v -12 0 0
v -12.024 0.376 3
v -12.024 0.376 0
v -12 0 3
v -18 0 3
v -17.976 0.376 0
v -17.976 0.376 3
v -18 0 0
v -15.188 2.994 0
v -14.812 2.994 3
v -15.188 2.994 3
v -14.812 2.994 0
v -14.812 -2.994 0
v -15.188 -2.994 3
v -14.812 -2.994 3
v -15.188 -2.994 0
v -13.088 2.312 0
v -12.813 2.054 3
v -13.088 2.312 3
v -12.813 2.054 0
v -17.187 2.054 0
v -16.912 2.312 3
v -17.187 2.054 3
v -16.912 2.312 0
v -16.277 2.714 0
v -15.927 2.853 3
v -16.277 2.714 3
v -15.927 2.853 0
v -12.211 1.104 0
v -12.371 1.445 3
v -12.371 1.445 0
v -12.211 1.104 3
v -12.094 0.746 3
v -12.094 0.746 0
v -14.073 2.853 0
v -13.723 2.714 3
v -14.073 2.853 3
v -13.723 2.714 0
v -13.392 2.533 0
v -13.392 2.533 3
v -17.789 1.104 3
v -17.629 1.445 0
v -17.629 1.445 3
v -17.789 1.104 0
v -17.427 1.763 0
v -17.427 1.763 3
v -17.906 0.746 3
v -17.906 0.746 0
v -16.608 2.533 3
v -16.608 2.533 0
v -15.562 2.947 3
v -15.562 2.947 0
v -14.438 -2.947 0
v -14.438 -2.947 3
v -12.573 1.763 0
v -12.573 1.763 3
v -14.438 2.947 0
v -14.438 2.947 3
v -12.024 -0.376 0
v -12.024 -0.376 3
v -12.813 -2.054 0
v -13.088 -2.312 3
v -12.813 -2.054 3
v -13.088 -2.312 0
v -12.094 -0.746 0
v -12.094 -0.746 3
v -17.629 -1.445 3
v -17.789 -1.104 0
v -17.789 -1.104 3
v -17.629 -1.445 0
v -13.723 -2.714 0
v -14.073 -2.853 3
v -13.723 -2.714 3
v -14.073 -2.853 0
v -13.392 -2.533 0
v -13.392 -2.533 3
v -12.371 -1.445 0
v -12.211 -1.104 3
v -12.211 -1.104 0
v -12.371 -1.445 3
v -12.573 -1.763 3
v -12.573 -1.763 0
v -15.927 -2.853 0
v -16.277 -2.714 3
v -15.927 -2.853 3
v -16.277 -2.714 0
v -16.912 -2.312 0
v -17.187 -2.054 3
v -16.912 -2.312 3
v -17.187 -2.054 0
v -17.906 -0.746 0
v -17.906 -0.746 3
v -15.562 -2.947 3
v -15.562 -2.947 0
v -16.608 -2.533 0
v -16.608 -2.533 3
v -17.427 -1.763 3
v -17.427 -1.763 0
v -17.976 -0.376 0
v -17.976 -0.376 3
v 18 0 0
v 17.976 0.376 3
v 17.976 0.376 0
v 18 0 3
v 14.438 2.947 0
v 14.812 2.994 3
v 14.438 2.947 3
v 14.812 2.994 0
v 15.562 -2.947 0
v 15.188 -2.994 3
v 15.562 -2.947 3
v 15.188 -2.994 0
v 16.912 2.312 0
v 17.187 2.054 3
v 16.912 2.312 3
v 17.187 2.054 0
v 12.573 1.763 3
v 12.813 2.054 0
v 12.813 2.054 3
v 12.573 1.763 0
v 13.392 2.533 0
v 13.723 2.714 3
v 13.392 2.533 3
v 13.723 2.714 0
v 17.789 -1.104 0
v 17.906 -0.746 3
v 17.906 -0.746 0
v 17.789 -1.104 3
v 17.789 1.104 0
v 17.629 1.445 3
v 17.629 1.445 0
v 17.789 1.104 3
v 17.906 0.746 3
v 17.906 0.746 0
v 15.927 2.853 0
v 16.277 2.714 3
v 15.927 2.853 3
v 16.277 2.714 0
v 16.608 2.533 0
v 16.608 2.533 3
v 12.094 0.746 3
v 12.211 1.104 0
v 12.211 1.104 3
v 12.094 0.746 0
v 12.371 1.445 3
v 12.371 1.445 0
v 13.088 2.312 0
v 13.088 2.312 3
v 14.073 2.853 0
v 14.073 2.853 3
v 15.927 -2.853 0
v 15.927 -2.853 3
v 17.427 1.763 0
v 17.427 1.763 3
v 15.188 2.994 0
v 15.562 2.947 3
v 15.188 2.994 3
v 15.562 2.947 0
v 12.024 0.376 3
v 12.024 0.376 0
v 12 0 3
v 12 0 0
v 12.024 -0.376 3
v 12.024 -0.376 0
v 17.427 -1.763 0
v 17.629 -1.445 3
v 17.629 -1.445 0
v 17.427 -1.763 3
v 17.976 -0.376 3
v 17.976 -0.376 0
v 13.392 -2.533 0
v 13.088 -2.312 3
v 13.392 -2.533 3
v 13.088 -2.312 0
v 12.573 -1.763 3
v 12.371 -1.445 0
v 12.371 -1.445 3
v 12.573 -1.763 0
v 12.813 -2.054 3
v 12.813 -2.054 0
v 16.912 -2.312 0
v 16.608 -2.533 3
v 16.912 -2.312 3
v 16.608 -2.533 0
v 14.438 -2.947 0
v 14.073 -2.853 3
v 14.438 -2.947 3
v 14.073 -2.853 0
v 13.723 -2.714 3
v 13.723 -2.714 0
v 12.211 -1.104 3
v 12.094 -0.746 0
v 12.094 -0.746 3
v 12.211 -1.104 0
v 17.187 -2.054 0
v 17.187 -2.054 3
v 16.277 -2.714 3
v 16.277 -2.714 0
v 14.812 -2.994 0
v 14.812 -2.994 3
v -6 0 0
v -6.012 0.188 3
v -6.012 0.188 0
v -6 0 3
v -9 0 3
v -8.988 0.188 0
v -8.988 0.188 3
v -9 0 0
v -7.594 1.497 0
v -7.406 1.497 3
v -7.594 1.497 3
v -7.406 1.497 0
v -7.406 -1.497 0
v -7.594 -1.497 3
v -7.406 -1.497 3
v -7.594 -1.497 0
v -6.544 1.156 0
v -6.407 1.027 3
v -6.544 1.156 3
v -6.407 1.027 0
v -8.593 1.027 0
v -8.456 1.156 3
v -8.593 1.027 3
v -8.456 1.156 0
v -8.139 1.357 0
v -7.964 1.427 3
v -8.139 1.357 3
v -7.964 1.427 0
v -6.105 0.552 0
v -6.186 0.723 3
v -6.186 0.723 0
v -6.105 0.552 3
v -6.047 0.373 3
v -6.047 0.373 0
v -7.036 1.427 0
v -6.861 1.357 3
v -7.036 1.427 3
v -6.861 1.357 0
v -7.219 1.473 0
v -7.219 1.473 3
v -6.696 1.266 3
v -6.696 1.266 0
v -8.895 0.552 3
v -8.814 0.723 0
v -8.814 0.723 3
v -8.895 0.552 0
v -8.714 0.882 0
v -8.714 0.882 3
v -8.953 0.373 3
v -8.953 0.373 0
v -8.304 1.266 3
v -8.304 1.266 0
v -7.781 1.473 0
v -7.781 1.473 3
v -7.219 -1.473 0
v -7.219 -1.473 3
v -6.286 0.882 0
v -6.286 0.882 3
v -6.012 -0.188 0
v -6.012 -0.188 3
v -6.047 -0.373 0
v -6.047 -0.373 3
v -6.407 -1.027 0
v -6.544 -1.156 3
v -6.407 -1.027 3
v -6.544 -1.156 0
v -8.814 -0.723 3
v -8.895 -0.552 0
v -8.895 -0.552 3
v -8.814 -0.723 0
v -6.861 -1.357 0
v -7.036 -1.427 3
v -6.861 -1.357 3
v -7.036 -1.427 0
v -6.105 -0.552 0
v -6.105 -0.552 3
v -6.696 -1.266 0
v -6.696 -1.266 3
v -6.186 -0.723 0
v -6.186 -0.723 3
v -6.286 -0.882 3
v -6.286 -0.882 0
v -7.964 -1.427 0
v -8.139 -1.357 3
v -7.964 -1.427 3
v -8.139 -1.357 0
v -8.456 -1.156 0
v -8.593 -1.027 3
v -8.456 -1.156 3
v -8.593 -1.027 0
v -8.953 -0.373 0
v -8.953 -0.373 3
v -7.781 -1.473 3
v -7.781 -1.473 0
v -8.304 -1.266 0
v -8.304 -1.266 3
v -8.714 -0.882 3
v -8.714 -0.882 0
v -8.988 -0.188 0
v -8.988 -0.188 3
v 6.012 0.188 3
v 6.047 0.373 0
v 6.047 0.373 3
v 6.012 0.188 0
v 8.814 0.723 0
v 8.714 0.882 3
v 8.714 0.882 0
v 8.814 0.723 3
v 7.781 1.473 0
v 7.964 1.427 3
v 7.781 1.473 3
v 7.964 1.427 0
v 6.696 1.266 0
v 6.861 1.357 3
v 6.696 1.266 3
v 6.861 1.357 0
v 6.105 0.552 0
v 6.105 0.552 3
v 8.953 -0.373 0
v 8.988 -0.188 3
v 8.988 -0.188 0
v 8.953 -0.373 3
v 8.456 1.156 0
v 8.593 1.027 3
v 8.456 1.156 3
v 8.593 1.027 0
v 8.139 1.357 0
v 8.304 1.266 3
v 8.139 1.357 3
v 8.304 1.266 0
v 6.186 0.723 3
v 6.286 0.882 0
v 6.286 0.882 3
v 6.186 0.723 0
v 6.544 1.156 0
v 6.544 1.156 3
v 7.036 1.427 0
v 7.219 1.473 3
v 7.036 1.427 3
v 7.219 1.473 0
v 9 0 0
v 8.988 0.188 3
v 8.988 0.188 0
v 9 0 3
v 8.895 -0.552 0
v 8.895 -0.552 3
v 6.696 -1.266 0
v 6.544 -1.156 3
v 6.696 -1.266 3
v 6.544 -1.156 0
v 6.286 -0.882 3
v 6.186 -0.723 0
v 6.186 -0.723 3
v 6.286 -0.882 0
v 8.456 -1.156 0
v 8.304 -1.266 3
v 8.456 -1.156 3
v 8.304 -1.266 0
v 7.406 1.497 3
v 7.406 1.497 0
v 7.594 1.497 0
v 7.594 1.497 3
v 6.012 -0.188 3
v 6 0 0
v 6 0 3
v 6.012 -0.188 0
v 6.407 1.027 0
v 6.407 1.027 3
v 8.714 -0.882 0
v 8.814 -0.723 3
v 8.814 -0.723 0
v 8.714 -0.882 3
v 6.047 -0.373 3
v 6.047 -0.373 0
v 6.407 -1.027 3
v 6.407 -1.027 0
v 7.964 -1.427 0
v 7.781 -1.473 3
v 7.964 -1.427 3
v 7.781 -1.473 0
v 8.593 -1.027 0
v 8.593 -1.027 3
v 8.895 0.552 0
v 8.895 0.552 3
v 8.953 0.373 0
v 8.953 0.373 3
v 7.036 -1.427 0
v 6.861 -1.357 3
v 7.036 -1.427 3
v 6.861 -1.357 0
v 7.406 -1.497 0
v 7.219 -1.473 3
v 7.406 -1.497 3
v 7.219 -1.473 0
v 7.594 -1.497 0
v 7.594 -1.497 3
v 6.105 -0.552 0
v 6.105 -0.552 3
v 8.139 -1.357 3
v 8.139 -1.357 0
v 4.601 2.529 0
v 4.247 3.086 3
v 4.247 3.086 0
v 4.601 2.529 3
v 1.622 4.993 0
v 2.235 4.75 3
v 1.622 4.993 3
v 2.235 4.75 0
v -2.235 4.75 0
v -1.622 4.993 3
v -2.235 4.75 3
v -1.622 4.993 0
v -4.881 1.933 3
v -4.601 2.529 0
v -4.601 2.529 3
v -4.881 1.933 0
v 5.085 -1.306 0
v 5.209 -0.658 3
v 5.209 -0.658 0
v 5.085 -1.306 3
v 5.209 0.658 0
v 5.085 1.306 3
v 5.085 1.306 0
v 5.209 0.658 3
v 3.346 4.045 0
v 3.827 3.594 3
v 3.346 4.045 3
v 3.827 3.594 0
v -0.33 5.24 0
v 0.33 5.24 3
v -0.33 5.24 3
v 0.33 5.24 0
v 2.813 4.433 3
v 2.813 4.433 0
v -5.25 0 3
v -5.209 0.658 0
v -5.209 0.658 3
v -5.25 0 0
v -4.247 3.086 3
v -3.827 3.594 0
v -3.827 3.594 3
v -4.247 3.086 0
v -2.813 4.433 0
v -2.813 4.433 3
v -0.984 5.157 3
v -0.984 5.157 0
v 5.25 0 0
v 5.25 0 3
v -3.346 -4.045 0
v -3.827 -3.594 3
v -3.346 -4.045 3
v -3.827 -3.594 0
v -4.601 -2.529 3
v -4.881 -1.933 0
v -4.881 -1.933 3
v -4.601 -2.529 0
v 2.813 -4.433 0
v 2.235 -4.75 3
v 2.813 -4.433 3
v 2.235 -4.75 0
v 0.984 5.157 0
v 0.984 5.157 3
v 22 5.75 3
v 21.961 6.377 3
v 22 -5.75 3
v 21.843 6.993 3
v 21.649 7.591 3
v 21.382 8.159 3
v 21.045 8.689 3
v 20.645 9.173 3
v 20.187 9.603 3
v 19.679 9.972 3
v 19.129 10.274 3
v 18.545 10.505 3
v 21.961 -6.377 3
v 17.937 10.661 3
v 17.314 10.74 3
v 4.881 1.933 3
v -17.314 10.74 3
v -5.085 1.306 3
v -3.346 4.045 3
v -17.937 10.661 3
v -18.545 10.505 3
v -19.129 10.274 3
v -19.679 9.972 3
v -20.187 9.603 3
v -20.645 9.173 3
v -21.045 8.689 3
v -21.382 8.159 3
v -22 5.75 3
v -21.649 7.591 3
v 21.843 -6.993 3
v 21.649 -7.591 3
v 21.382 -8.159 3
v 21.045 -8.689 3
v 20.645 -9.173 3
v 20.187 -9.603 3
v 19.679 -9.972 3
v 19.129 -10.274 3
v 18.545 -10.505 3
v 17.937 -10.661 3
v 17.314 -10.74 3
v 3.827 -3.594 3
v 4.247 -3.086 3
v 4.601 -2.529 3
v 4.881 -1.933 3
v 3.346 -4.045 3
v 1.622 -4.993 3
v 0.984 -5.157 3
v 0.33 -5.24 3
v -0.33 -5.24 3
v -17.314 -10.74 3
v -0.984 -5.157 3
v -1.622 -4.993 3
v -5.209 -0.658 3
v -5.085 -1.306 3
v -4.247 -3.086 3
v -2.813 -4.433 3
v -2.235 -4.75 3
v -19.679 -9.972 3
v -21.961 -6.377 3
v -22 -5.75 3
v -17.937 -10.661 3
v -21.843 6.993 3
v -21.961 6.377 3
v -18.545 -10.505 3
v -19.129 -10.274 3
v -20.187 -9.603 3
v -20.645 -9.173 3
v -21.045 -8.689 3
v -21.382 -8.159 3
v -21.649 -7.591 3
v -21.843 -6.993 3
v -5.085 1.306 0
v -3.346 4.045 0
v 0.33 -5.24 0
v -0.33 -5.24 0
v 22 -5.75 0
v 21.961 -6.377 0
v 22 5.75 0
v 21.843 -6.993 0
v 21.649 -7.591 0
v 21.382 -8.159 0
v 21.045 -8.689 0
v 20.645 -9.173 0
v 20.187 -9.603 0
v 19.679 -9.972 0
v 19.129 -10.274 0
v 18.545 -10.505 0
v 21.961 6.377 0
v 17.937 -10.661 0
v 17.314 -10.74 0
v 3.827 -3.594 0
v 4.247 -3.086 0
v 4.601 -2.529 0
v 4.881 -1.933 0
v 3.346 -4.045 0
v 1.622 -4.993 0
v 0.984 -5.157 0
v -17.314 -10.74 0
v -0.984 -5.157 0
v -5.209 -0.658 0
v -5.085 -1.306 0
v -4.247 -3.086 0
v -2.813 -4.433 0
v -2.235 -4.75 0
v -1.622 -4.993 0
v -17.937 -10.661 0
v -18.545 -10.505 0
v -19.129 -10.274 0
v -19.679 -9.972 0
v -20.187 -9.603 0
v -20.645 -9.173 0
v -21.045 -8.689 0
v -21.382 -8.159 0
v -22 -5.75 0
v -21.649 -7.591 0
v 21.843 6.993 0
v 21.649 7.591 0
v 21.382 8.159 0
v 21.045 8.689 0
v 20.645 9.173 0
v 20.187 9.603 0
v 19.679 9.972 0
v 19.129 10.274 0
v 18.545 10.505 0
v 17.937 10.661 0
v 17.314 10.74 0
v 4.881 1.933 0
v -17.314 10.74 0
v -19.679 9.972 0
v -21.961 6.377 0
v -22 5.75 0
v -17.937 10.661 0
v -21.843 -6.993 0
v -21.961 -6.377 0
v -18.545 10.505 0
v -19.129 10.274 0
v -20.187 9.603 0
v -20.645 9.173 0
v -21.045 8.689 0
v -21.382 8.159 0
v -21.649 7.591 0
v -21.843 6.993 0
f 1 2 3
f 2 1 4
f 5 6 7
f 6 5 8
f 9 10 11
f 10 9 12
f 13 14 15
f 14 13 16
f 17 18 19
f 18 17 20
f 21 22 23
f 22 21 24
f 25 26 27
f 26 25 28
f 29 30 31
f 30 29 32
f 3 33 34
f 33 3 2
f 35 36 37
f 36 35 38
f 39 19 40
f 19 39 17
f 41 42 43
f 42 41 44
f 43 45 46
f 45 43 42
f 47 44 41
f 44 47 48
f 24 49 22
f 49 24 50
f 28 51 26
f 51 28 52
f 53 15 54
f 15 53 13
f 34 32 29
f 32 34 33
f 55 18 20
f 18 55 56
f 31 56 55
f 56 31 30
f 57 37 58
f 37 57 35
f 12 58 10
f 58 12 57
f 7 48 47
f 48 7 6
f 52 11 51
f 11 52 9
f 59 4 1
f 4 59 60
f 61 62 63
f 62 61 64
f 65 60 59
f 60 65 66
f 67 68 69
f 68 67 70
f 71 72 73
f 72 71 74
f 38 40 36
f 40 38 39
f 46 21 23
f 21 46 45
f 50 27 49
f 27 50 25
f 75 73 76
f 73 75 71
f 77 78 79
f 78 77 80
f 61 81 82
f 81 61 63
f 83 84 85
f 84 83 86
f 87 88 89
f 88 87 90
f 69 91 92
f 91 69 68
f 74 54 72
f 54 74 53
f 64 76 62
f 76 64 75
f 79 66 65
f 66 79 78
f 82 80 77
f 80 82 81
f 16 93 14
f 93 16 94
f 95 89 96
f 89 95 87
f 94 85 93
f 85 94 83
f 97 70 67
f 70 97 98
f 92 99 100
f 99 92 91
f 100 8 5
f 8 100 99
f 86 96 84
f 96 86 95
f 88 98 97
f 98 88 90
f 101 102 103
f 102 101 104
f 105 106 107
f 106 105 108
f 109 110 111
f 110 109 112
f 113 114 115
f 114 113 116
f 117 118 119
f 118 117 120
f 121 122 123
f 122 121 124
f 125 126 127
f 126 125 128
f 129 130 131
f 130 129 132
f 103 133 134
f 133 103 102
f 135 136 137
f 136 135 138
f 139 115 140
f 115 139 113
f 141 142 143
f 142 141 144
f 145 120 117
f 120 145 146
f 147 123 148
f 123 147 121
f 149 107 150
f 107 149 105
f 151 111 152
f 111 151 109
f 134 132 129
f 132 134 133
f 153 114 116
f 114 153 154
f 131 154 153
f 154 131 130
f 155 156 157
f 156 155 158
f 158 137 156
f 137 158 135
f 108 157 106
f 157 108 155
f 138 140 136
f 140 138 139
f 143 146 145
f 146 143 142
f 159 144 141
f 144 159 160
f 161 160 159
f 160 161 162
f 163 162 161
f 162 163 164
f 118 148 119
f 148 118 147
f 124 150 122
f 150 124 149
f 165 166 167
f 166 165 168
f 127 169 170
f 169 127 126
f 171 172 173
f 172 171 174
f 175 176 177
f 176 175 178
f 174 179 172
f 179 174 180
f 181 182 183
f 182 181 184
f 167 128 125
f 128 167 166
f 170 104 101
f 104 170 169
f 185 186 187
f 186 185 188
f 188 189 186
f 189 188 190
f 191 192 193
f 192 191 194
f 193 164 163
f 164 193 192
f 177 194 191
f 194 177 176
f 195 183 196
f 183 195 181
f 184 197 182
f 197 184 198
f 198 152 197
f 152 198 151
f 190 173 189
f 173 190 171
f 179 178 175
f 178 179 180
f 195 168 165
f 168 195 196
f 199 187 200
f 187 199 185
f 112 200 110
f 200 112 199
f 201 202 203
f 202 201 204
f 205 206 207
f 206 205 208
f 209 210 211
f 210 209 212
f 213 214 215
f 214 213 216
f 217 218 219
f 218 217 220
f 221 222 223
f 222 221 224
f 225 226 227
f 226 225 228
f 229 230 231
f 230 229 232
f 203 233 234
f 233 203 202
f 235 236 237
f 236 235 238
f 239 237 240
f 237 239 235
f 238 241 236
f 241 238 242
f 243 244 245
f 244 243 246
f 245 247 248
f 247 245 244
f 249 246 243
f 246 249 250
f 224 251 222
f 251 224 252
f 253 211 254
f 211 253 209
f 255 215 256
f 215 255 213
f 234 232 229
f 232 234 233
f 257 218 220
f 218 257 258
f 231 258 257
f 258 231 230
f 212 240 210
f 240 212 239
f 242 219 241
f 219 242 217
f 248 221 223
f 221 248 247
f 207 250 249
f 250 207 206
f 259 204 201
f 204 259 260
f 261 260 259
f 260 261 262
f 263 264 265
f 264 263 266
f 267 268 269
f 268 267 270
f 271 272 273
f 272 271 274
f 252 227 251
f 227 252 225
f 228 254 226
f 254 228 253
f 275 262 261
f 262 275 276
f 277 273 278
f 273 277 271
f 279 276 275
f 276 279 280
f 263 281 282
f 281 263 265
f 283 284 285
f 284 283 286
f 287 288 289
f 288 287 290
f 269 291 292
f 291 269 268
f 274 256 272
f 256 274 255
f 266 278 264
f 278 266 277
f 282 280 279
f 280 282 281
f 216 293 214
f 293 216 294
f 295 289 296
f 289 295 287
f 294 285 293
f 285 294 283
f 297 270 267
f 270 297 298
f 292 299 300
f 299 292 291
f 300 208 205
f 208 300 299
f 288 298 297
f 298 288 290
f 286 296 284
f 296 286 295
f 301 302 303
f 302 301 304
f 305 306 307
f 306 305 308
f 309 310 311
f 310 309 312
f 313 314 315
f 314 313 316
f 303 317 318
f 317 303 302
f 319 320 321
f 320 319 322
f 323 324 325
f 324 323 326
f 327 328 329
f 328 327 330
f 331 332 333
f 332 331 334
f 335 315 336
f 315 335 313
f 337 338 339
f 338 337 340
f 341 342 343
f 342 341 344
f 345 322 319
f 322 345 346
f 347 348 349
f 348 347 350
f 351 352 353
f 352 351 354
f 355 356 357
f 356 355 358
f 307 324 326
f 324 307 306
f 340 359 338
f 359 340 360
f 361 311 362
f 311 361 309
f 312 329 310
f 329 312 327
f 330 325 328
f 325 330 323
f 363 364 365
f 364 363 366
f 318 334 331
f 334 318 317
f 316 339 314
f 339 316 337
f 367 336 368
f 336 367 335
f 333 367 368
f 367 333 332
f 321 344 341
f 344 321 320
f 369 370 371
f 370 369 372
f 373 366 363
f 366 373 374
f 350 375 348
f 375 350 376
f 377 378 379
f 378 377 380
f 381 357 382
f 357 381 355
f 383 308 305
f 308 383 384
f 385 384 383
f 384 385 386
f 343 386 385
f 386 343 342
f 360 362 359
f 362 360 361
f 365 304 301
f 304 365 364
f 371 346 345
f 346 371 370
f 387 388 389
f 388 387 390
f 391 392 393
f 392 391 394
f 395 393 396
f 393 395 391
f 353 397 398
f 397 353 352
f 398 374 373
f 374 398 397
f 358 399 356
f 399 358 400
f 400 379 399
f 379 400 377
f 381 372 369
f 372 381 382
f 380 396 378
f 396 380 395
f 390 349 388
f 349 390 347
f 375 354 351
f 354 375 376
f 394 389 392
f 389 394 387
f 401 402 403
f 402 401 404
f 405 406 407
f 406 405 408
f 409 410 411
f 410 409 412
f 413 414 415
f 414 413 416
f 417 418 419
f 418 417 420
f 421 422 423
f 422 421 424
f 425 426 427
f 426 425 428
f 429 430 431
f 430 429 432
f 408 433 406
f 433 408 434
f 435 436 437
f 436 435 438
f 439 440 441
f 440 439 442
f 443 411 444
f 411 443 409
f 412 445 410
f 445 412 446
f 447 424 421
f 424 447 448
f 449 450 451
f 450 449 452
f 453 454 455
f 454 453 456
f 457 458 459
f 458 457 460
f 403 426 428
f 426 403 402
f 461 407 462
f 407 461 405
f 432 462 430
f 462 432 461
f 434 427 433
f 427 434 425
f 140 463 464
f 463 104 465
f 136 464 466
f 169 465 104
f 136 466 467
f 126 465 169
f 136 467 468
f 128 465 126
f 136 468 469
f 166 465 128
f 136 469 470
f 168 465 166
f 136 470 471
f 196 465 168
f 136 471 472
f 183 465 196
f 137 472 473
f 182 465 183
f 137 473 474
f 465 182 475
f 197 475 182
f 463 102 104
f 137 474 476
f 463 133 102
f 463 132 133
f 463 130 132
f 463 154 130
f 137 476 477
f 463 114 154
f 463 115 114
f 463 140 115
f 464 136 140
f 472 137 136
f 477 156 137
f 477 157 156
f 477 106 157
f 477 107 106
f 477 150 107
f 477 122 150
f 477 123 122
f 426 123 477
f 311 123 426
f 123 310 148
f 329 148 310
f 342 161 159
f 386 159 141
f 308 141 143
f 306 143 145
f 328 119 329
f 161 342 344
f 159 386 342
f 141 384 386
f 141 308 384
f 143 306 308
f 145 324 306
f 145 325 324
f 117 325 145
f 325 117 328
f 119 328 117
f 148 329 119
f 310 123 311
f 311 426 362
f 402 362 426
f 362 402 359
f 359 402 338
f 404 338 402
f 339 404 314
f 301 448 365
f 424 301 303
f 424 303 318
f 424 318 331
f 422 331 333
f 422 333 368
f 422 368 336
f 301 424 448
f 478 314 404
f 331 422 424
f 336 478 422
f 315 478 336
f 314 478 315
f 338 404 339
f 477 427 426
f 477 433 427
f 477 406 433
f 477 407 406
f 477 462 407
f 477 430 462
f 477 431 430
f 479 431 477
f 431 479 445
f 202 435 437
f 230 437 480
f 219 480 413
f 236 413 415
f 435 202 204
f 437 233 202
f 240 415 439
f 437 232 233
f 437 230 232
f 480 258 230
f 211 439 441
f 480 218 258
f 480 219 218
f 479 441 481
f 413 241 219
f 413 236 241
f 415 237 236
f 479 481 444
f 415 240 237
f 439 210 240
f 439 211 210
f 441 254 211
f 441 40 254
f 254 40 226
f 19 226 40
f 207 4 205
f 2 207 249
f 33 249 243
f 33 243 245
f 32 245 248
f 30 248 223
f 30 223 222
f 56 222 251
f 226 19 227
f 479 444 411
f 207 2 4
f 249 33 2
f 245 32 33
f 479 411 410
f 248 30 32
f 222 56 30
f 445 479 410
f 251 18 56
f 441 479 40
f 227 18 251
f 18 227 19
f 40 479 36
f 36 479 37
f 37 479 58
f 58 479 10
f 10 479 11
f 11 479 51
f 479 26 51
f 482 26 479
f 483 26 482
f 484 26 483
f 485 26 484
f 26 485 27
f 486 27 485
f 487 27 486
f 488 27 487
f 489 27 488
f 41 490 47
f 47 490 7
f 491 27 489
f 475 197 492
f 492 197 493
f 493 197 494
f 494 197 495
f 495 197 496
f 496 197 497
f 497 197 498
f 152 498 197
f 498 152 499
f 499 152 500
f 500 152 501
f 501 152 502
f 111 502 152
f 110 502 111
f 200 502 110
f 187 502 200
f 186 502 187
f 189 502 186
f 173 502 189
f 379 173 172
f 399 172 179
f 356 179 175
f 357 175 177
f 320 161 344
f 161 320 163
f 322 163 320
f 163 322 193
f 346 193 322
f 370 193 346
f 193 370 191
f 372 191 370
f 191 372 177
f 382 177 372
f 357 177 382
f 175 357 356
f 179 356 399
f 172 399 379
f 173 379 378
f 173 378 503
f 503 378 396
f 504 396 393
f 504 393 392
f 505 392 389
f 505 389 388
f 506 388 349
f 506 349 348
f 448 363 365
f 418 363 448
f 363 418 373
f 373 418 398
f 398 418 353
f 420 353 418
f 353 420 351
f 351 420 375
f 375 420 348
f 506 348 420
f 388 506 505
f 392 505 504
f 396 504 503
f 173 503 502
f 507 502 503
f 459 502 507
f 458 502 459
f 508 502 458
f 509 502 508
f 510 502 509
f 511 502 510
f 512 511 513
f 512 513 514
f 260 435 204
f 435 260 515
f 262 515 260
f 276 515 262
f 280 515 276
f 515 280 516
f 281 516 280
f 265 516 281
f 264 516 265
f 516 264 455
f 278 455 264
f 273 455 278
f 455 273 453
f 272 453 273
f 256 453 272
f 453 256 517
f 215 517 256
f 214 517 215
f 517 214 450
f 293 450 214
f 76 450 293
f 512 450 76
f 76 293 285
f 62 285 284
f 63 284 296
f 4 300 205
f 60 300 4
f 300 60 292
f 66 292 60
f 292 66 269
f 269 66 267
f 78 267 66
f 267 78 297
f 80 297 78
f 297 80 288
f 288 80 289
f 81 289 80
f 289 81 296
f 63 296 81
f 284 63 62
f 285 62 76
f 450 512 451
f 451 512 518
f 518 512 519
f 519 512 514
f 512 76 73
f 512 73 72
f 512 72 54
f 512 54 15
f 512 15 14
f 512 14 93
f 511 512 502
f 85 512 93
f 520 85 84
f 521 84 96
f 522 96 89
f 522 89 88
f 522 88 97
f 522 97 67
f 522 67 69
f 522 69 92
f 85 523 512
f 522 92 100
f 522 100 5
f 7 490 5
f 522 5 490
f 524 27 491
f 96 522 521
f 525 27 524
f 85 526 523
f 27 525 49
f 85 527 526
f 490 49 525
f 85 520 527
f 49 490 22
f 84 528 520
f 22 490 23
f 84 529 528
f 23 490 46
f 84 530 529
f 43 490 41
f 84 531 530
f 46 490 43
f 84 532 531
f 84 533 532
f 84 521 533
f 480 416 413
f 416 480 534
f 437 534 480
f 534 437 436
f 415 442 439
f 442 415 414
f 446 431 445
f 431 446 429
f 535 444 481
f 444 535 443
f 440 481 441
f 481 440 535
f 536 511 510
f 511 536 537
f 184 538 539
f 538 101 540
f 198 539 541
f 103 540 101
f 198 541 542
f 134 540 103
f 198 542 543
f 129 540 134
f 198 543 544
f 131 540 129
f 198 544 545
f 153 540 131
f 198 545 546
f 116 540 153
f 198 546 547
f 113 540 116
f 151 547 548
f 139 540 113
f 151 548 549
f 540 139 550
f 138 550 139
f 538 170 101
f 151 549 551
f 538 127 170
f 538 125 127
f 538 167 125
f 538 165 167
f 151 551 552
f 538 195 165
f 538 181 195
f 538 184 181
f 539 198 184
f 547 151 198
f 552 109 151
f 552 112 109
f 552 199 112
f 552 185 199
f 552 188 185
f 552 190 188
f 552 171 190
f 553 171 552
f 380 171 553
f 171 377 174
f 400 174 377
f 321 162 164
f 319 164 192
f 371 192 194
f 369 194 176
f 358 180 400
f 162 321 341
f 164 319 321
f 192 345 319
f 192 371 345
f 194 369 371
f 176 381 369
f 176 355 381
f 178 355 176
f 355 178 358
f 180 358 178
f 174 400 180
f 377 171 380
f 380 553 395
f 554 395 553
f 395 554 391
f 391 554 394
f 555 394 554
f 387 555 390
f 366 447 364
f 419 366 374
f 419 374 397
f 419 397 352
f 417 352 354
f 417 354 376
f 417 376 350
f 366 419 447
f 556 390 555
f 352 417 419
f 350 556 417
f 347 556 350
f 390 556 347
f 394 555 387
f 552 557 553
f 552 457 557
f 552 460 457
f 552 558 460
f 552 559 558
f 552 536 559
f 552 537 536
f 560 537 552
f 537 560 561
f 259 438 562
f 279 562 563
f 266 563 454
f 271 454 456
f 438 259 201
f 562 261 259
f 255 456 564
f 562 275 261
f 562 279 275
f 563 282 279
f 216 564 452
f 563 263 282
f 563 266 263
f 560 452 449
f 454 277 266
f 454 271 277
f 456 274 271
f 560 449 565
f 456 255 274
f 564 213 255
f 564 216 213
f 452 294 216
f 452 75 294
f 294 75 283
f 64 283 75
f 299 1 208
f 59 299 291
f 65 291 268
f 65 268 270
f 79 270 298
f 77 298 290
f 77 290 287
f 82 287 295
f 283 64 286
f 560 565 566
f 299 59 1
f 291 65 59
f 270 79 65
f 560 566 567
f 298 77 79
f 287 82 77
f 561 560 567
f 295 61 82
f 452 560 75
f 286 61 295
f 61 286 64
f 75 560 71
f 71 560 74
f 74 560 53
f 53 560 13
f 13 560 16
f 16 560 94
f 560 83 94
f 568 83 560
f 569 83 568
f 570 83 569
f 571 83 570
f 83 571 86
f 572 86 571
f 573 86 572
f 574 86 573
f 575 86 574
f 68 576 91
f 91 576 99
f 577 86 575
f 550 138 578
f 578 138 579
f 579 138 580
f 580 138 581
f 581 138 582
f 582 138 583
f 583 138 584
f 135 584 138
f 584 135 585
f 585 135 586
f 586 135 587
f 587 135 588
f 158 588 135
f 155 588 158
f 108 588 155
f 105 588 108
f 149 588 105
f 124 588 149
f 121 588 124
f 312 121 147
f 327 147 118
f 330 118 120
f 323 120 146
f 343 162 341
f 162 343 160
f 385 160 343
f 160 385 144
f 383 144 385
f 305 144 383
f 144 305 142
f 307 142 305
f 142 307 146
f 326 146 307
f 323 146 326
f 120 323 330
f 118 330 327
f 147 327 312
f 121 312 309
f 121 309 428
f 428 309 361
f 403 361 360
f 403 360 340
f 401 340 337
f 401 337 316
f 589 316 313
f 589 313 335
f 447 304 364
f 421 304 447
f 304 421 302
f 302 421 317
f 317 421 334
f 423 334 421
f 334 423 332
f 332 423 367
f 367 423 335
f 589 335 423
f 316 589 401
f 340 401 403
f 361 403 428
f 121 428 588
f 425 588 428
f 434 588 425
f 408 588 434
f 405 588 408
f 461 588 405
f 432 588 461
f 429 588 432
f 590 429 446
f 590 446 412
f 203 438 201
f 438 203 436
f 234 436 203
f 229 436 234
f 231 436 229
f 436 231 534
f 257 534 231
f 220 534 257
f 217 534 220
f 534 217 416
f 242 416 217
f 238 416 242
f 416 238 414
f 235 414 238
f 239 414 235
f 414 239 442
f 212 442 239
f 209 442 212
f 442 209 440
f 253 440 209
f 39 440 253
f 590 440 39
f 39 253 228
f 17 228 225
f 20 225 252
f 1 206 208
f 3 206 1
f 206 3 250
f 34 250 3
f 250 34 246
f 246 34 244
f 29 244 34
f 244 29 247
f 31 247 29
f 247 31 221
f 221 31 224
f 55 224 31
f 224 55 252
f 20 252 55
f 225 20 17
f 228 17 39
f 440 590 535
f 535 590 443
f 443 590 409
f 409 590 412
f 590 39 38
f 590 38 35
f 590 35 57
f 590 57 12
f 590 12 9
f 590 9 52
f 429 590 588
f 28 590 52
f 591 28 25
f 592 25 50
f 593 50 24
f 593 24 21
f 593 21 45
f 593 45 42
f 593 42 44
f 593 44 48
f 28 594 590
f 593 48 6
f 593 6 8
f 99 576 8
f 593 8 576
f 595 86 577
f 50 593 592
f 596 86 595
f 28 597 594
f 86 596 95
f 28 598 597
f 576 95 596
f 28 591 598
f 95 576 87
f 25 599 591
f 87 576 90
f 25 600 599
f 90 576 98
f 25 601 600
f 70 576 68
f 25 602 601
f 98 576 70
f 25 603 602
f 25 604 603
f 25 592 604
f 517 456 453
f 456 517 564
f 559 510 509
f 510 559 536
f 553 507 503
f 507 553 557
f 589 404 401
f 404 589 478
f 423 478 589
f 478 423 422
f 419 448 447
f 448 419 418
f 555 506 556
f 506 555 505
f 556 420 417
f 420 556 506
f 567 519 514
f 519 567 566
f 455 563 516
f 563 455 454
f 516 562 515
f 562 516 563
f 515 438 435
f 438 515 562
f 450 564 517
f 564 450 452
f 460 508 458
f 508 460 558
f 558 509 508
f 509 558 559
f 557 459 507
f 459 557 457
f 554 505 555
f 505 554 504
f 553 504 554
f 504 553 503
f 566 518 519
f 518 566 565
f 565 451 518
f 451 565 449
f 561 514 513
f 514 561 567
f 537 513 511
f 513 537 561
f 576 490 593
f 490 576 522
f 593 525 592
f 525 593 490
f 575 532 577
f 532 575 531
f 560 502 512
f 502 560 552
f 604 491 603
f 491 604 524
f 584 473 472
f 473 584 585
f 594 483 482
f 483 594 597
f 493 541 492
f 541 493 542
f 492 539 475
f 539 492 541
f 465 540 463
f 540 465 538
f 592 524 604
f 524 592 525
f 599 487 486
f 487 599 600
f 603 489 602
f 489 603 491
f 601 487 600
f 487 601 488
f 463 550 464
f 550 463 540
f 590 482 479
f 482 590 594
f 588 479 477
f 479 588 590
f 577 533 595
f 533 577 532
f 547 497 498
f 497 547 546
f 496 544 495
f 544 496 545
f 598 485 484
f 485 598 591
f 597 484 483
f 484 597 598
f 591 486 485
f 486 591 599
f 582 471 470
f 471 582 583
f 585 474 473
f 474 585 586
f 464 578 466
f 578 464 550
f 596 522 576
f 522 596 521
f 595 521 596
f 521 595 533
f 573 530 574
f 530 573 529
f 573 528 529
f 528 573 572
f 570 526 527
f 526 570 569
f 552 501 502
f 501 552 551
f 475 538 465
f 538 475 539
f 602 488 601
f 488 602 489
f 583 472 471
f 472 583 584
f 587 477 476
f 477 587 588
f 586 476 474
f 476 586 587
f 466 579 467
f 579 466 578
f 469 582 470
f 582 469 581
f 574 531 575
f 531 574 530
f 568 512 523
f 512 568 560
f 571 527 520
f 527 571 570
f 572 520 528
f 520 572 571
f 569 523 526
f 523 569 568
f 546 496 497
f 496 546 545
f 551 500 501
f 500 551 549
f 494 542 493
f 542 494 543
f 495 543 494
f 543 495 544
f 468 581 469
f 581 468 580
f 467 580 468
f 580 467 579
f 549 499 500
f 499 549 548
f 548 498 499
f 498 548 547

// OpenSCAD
$fn = 50;


difference() {
	union() {
		hull() {
			translate(v = [-17.0000000000, 5.7500000000, 0]) {
				cylinder(h = 3, r = 5);
			}
			translate(v = [17.0000000000, 5.7500000000, 0]) {
				cylinder(h = 3, r = 5);
			}
			translate(v = [-17.0000000000, -5.7500000000, 0]) {
				cylinder(h = 3, r = 5);
			}
			translate(v = [17.0000000000, -5.7500000000, 0]) {
				cylinder(h = 3, r = 5);
			}
		}
	}
	union() {
		translate(v = [-15.0000000000, 0.0000000000, -100.0000000000]) {
			cylinder(h = 200, r = 3.0000000000);
		}
		translate(v = [15.0000000000, 0.0000000000, -100.0000000000]) {
			cylinder(h = 200, r = 3.0000000000);
		}
		translate(v = [-15.0000000000, 0.0000000000, -100.0000000000]) {
			cylinder(h = 200, r = 3.0000000000);
		}
		translate(v = [0.0000000000, 0.0000000000, -100.0000000000]) {
			cylinder(h = 200, r = 3.0000000000);
		}
		translate(v = [15.0000000000, 0.0000000000, -100.0000000000]) {
			cylinder(h = 200, r = 3.0000000000);
		}
		translate(v = [15.0000000000, 0.0000000000, -100.0000000000]) {
			cylinder(h = 200, r = 3.0000000000);
		}
		translate(v = [-15.0000000000, 0.0000000000, -100.0000000000]) {
			cylinder(h = 200, r = 1.5000000000);
		}
		translate(v = [15.0000000000, 0.0000000000, -100.0000000000]) {
			cylinder(h = 200, r = 1.5000000000);
		}
		translate(v = [-15.0000000000, 0.0000000000, -100.0000000000]) {
			cylinder(h = 200, r = 1.5000000000);
		}
		translate(v = [-7.5000000000, 0.0000000000, -100.0000000000]) {
			cylinder(h = 200, r = 1.5000000000);
		}
		translate(v = [0.0000000000, 0.0000000000, -100.0000000000]) {
			cylinder(h = 200, r = 1.5000000000);
		}
		translate(v = [7.5000000000, 0.0000000000, -100.0000000000]) {
			cylinder(h = 200, r = 1.5000000000);
		}
		translate(v = [15.0000000000, 0.0000000000, -100.0000000000]) {
			cylinder(h = 200, r = 1.5000000000);
		}
		translate(v = [-15.0000000000, 0.0000000000, -100.0000000000]) {
			cylinder(h = 200, r = 1.5000000000);
		}
		translate(v = [15.0000000000, 0.0000000000, -100.0000000000]) {
			cylinder(h = 200, r = 1.5000000000);
		}
		translate(v = [-15.0000000000, 0.0000000000, -100.0000000000]) {
			cylinder(h = 200, r = 1.5000000000);
		}
		translate(v = [-7.5000000000, 0.0000000000, -100.0000000000]) {
			cylinder(h = 200, r = 1.5000000000);
		}
		translate(v = [0.0000000000, 0.0000000000, -100.0000000000]) {
			cylinder(h = 200, r = 1.5000000000);
		}
		translate(v = [7.5000000000, 0.0000000000, -100.0000000000]) {
			cylinder(h = 200, r = 1.5000000000);
		}
		translate(v = [15.0000000000, 0.0000000000, -100.0000000000]) {
			cylinder(h = 200, r = 1.5000000000);
		}
		translate(v = [-15.0000000000, 0.0000000000, -100.0000000000]) {
			cylinder(h = 200, r = 1.5000000000);
		}
		translate(v = [15.0000000000, 0.0000000000, -100.0000000000]) {
			cylinder(h = 200, r = 1.5000000000);
		}
		translate(v = [-15.0000000000, 0.0000000000, -100.0000000000]) {
			cylinder(h = 200, r = 1.5000000000);
		}
		translate(v = [-7.5000000000, 0.0000000000, -100.0000000000]) {
			cylinder(h = 200, r = 1.5000000000);
		}
		translate(v = [0.0000000000, 0.0000000000, -100.0000000000]) {
			cylinder(h = 200, r = 1.5000000000);
		}
		translate(v = [7.5000000000, 0.0000000000, -100.0000000000]) {
			cylinder(h = 200, r = 1.5000000000);
		}
		translate(v = [15.0000000000, 0.0000000000, -100.0000000000]) {
			cylinder(h = 200, r = 1.5000000000);
		}
		#cylinder(h = 3, r = 5.2500000000);
	}
}
